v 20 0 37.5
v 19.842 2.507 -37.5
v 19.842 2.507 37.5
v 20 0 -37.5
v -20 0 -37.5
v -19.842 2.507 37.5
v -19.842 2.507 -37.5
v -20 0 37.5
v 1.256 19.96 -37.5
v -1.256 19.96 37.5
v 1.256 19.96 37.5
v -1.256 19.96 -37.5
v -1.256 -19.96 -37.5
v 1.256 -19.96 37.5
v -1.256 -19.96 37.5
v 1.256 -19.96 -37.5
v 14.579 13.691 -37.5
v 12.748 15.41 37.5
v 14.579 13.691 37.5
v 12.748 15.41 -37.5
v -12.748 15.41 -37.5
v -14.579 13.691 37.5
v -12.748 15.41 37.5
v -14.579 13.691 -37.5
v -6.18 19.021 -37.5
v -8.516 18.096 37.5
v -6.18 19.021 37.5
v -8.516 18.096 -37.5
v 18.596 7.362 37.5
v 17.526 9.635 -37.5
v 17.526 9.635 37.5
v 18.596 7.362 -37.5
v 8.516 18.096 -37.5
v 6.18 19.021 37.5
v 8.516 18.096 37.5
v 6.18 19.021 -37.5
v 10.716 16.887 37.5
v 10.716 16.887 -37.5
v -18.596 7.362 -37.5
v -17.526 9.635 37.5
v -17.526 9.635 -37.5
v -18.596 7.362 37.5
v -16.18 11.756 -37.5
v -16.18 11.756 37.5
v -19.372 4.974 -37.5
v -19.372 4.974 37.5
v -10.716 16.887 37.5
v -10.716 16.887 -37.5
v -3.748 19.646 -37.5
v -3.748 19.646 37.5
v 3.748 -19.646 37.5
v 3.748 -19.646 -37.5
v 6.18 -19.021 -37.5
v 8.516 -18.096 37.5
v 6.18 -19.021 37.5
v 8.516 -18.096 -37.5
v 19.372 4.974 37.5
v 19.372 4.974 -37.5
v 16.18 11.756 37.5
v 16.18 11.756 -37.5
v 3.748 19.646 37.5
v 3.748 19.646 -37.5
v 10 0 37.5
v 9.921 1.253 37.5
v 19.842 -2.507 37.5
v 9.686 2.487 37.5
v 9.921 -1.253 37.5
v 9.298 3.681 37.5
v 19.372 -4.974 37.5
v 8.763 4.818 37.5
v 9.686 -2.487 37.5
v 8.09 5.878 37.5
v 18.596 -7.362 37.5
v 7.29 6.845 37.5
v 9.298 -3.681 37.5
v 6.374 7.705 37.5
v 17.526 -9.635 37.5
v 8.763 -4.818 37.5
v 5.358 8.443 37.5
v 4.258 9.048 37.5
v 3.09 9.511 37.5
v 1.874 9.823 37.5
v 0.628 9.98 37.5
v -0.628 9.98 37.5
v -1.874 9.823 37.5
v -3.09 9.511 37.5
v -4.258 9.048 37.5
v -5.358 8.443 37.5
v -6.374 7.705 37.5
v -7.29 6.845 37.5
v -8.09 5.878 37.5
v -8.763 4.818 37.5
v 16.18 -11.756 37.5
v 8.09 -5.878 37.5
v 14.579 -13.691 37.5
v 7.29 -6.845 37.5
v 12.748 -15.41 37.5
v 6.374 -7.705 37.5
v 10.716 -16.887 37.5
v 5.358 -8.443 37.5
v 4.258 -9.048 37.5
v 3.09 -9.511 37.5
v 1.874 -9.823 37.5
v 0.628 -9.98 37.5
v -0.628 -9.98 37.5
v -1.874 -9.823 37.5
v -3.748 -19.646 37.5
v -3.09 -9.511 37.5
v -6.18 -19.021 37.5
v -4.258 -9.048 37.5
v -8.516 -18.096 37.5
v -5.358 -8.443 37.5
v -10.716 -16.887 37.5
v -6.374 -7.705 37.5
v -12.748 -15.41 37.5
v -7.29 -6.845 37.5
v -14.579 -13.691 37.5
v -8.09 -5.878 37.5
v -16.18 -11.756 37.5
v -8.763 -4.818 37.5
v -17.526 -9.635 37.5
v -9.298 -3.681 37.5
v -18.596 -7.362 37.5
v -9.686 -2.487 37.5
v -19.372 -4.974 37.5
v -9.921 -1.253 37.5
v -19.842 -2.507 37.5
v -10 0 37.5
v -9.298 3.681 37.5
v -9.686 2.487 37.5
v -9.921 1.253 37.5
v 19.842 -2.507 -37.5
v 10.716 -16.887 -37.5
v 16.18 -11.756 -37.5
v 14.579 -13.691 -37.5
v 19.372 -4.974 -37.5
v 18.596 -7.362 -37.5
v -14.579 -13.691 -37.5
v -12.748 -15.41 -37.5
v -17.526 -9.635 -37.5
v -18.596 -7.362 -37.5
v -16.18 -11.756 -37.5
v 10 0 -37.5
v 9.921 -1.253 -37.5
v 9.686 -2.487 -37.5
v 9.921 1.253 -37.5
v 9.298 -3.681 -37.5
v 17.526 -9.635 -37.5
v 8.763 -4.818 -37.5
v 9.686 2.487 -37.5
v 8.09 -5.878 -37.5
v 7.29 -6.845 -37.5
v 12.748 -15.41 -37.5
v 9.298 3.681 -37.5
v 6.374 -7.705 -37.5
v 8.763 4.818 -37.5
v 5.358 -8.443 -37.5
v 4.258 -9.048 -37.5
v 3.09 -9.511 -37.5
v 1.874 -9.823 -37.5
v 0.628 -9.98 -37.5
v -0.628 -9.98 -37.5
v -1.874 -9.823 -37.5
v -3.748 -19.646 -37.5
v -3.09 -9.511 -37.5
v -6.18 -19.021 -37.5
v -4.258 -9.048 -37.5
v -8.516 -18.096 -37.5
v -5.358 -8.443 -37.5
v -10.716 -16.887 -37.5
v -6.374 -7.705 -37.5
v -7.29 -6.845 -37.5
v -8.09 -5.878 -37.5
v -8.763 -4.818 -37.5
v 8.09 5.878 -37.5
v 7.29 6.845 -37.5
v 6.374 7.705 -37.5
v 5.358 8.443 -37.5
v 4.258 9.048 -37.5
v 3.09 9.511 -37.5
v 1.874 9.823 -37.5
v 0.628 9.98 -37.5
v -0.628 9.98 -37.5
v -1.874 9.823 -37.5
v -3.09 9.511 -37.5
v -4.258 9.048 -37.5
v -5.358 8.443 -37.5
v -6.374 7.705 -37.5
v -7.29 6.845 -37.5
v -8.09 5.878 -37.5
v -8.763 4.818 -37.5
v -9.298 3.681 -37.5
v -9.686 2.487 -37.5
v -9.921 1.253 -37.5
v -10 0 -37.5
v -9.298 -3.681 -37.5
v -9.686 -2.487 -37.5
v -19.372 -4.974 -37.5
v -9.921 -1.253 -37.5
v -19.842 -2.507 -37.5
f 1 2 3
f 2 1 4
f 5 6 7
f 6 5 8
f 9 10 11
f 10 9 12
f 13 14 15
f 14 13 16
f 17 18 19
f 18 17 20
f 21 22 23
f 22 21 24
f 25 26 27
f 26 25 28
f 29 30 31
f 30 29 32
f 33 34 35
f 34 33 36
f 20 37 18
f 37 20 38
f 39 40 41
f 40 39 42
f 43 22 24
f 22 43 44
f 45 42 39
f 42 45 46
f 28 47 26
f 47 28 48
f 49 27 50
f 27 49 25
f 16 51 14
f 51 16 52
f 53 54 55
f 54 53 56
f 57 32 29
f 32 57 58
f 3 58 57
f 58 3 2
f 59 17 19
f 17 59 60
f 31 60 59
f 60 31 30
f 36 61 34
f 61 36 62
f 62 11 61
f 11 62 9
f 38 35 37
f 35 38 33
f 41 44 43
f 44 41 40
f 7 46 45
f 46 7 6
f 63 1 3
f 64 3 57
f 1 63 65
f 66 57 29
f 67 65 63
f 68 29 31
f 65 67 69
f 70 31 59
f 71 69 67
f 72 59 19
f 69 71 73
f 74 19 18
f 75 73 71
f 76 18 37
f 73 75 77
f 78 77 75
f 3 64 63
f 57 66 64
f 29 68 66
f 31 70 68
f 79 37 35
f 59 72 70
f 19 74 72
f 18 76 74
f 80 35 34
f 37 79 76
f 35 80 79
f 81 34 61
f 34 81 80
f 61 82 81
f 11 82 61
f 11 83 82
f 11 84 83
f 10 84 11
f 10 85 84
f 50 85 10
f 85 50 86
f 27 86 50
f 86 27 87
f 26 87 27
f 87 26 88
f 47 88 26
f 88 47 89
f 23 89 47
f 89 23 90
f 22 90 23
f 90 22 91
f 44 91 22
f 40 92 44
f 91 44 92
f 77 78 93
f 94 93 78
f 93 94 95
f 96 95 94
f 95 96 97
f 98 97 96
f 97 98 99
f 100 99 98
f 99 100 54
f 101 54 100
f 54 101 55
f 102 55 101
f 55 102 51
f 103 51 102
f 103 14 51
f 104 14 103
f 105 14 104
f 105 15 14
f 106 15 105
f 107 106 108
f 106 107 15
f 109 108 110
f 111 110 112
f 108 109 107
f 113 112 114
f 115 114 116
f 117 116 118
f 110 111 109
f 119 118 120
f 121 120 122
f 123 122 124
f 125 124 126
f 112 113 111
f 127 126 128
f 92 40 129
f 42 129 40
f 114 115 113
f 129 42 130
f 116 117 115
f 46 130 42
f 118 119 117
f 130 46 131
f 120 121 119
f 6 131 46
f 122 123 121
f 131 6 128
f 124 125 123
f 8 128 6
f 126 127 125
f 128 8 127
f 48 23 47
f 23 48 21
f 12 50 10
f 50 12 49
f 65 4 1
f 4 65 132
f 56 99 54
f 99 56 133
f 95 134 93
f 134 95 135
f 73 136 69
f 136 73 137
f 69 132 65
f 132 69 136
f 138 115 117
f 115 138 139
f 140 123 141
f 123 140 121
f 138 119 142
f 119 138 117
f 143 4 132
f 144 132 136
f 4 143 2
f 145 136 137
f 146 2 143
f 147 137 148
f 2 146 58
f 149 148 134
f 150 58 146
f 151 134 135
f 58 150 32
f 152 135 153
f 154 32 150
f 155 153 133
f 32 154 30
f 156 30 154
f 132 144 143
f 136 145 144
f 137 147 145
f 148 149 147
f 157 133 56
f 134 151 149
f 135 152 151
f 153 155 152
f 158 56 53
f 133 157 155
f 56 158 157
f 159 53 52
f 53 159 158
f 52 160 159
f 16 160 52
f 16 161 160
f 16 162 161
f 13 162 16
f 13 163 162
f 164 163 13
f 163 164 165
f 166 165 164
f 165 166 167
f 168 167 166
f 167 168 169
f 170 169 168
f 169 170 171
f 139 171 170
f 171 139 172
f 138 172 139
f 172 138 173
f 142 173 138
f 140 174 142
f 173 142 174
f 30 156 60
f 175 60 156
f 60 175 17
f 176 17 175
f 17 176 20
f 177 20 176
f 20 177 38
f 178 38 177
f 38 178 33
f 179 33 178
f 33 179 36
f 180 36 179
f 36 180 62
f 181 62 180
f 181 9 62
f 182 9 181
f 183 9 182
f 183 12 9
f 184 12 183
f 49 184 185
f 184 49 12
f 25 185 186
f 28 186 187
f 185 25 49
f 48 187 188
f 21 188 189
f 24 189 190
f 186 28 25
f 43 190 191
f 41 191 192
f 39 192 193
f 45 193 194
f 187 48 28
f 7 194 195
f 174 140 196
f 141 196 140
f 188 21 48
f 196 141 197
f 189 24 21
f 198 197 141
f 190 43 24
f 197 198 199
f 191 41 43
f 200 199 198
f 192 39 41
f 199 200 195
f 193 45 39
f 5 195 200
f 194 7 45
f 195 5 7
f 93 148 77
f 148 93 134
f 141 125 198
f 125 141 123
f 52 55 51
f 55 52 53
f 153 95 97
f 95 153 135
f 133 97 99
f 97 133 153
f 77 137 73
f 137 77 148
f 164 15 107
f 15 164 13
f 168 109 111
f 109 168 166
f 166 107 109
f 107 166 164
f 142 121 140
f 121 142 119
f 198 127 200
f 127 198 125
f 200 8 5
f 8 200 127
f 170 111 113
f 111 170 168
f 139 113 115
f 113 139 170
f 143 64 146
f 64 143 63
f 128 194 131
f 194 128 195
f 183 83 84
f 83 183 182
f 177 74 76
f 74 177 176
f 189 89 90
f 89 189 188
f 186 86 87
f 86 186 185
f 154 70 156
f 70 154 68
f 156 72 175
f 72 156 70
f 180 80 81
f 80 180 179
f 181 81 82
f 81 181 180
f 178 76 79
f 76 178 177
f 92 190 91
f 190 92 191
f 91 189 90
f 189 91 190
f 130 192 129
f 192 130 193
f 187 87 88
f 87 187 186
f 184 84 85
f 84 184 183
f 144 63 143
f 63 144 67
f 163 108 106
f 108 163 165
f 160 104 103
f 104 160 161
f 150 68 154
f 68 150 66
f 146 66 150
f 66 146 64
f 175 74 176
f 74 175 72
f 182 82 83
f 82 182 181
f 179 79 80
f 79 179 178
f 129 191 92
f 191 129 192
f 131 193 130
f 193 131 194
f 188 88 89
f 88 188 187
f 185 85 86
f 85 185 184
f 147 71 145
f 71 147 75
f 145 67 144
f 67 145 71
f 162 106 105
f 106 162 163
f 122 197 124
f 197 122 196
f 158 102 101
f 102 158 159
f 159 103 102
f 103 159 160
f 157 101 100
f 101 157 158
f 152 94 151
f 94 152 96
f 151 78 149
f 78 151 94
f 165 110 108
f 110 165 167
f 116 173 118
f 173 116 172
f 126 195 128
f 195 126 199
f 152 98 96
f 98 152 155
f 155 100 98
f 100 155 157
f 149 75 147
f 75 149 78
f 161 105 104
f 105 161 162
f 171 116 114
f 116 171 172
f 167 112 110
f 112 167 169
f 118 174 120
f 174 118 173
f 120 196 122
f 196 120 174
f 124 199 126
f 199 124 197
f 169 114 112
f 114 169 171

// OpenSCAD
$fn = 50;


difference() {
	union() {
		translate(v = [0, 0, -37.5000000000]) {
			cylinder(h = 75, r = 20.0000000000);
		}
	}
	union() {
		translate(v = [0, 0, -100.0000000000]) {
			cylinder(h = 200, r = 10);
		}
	}
}
